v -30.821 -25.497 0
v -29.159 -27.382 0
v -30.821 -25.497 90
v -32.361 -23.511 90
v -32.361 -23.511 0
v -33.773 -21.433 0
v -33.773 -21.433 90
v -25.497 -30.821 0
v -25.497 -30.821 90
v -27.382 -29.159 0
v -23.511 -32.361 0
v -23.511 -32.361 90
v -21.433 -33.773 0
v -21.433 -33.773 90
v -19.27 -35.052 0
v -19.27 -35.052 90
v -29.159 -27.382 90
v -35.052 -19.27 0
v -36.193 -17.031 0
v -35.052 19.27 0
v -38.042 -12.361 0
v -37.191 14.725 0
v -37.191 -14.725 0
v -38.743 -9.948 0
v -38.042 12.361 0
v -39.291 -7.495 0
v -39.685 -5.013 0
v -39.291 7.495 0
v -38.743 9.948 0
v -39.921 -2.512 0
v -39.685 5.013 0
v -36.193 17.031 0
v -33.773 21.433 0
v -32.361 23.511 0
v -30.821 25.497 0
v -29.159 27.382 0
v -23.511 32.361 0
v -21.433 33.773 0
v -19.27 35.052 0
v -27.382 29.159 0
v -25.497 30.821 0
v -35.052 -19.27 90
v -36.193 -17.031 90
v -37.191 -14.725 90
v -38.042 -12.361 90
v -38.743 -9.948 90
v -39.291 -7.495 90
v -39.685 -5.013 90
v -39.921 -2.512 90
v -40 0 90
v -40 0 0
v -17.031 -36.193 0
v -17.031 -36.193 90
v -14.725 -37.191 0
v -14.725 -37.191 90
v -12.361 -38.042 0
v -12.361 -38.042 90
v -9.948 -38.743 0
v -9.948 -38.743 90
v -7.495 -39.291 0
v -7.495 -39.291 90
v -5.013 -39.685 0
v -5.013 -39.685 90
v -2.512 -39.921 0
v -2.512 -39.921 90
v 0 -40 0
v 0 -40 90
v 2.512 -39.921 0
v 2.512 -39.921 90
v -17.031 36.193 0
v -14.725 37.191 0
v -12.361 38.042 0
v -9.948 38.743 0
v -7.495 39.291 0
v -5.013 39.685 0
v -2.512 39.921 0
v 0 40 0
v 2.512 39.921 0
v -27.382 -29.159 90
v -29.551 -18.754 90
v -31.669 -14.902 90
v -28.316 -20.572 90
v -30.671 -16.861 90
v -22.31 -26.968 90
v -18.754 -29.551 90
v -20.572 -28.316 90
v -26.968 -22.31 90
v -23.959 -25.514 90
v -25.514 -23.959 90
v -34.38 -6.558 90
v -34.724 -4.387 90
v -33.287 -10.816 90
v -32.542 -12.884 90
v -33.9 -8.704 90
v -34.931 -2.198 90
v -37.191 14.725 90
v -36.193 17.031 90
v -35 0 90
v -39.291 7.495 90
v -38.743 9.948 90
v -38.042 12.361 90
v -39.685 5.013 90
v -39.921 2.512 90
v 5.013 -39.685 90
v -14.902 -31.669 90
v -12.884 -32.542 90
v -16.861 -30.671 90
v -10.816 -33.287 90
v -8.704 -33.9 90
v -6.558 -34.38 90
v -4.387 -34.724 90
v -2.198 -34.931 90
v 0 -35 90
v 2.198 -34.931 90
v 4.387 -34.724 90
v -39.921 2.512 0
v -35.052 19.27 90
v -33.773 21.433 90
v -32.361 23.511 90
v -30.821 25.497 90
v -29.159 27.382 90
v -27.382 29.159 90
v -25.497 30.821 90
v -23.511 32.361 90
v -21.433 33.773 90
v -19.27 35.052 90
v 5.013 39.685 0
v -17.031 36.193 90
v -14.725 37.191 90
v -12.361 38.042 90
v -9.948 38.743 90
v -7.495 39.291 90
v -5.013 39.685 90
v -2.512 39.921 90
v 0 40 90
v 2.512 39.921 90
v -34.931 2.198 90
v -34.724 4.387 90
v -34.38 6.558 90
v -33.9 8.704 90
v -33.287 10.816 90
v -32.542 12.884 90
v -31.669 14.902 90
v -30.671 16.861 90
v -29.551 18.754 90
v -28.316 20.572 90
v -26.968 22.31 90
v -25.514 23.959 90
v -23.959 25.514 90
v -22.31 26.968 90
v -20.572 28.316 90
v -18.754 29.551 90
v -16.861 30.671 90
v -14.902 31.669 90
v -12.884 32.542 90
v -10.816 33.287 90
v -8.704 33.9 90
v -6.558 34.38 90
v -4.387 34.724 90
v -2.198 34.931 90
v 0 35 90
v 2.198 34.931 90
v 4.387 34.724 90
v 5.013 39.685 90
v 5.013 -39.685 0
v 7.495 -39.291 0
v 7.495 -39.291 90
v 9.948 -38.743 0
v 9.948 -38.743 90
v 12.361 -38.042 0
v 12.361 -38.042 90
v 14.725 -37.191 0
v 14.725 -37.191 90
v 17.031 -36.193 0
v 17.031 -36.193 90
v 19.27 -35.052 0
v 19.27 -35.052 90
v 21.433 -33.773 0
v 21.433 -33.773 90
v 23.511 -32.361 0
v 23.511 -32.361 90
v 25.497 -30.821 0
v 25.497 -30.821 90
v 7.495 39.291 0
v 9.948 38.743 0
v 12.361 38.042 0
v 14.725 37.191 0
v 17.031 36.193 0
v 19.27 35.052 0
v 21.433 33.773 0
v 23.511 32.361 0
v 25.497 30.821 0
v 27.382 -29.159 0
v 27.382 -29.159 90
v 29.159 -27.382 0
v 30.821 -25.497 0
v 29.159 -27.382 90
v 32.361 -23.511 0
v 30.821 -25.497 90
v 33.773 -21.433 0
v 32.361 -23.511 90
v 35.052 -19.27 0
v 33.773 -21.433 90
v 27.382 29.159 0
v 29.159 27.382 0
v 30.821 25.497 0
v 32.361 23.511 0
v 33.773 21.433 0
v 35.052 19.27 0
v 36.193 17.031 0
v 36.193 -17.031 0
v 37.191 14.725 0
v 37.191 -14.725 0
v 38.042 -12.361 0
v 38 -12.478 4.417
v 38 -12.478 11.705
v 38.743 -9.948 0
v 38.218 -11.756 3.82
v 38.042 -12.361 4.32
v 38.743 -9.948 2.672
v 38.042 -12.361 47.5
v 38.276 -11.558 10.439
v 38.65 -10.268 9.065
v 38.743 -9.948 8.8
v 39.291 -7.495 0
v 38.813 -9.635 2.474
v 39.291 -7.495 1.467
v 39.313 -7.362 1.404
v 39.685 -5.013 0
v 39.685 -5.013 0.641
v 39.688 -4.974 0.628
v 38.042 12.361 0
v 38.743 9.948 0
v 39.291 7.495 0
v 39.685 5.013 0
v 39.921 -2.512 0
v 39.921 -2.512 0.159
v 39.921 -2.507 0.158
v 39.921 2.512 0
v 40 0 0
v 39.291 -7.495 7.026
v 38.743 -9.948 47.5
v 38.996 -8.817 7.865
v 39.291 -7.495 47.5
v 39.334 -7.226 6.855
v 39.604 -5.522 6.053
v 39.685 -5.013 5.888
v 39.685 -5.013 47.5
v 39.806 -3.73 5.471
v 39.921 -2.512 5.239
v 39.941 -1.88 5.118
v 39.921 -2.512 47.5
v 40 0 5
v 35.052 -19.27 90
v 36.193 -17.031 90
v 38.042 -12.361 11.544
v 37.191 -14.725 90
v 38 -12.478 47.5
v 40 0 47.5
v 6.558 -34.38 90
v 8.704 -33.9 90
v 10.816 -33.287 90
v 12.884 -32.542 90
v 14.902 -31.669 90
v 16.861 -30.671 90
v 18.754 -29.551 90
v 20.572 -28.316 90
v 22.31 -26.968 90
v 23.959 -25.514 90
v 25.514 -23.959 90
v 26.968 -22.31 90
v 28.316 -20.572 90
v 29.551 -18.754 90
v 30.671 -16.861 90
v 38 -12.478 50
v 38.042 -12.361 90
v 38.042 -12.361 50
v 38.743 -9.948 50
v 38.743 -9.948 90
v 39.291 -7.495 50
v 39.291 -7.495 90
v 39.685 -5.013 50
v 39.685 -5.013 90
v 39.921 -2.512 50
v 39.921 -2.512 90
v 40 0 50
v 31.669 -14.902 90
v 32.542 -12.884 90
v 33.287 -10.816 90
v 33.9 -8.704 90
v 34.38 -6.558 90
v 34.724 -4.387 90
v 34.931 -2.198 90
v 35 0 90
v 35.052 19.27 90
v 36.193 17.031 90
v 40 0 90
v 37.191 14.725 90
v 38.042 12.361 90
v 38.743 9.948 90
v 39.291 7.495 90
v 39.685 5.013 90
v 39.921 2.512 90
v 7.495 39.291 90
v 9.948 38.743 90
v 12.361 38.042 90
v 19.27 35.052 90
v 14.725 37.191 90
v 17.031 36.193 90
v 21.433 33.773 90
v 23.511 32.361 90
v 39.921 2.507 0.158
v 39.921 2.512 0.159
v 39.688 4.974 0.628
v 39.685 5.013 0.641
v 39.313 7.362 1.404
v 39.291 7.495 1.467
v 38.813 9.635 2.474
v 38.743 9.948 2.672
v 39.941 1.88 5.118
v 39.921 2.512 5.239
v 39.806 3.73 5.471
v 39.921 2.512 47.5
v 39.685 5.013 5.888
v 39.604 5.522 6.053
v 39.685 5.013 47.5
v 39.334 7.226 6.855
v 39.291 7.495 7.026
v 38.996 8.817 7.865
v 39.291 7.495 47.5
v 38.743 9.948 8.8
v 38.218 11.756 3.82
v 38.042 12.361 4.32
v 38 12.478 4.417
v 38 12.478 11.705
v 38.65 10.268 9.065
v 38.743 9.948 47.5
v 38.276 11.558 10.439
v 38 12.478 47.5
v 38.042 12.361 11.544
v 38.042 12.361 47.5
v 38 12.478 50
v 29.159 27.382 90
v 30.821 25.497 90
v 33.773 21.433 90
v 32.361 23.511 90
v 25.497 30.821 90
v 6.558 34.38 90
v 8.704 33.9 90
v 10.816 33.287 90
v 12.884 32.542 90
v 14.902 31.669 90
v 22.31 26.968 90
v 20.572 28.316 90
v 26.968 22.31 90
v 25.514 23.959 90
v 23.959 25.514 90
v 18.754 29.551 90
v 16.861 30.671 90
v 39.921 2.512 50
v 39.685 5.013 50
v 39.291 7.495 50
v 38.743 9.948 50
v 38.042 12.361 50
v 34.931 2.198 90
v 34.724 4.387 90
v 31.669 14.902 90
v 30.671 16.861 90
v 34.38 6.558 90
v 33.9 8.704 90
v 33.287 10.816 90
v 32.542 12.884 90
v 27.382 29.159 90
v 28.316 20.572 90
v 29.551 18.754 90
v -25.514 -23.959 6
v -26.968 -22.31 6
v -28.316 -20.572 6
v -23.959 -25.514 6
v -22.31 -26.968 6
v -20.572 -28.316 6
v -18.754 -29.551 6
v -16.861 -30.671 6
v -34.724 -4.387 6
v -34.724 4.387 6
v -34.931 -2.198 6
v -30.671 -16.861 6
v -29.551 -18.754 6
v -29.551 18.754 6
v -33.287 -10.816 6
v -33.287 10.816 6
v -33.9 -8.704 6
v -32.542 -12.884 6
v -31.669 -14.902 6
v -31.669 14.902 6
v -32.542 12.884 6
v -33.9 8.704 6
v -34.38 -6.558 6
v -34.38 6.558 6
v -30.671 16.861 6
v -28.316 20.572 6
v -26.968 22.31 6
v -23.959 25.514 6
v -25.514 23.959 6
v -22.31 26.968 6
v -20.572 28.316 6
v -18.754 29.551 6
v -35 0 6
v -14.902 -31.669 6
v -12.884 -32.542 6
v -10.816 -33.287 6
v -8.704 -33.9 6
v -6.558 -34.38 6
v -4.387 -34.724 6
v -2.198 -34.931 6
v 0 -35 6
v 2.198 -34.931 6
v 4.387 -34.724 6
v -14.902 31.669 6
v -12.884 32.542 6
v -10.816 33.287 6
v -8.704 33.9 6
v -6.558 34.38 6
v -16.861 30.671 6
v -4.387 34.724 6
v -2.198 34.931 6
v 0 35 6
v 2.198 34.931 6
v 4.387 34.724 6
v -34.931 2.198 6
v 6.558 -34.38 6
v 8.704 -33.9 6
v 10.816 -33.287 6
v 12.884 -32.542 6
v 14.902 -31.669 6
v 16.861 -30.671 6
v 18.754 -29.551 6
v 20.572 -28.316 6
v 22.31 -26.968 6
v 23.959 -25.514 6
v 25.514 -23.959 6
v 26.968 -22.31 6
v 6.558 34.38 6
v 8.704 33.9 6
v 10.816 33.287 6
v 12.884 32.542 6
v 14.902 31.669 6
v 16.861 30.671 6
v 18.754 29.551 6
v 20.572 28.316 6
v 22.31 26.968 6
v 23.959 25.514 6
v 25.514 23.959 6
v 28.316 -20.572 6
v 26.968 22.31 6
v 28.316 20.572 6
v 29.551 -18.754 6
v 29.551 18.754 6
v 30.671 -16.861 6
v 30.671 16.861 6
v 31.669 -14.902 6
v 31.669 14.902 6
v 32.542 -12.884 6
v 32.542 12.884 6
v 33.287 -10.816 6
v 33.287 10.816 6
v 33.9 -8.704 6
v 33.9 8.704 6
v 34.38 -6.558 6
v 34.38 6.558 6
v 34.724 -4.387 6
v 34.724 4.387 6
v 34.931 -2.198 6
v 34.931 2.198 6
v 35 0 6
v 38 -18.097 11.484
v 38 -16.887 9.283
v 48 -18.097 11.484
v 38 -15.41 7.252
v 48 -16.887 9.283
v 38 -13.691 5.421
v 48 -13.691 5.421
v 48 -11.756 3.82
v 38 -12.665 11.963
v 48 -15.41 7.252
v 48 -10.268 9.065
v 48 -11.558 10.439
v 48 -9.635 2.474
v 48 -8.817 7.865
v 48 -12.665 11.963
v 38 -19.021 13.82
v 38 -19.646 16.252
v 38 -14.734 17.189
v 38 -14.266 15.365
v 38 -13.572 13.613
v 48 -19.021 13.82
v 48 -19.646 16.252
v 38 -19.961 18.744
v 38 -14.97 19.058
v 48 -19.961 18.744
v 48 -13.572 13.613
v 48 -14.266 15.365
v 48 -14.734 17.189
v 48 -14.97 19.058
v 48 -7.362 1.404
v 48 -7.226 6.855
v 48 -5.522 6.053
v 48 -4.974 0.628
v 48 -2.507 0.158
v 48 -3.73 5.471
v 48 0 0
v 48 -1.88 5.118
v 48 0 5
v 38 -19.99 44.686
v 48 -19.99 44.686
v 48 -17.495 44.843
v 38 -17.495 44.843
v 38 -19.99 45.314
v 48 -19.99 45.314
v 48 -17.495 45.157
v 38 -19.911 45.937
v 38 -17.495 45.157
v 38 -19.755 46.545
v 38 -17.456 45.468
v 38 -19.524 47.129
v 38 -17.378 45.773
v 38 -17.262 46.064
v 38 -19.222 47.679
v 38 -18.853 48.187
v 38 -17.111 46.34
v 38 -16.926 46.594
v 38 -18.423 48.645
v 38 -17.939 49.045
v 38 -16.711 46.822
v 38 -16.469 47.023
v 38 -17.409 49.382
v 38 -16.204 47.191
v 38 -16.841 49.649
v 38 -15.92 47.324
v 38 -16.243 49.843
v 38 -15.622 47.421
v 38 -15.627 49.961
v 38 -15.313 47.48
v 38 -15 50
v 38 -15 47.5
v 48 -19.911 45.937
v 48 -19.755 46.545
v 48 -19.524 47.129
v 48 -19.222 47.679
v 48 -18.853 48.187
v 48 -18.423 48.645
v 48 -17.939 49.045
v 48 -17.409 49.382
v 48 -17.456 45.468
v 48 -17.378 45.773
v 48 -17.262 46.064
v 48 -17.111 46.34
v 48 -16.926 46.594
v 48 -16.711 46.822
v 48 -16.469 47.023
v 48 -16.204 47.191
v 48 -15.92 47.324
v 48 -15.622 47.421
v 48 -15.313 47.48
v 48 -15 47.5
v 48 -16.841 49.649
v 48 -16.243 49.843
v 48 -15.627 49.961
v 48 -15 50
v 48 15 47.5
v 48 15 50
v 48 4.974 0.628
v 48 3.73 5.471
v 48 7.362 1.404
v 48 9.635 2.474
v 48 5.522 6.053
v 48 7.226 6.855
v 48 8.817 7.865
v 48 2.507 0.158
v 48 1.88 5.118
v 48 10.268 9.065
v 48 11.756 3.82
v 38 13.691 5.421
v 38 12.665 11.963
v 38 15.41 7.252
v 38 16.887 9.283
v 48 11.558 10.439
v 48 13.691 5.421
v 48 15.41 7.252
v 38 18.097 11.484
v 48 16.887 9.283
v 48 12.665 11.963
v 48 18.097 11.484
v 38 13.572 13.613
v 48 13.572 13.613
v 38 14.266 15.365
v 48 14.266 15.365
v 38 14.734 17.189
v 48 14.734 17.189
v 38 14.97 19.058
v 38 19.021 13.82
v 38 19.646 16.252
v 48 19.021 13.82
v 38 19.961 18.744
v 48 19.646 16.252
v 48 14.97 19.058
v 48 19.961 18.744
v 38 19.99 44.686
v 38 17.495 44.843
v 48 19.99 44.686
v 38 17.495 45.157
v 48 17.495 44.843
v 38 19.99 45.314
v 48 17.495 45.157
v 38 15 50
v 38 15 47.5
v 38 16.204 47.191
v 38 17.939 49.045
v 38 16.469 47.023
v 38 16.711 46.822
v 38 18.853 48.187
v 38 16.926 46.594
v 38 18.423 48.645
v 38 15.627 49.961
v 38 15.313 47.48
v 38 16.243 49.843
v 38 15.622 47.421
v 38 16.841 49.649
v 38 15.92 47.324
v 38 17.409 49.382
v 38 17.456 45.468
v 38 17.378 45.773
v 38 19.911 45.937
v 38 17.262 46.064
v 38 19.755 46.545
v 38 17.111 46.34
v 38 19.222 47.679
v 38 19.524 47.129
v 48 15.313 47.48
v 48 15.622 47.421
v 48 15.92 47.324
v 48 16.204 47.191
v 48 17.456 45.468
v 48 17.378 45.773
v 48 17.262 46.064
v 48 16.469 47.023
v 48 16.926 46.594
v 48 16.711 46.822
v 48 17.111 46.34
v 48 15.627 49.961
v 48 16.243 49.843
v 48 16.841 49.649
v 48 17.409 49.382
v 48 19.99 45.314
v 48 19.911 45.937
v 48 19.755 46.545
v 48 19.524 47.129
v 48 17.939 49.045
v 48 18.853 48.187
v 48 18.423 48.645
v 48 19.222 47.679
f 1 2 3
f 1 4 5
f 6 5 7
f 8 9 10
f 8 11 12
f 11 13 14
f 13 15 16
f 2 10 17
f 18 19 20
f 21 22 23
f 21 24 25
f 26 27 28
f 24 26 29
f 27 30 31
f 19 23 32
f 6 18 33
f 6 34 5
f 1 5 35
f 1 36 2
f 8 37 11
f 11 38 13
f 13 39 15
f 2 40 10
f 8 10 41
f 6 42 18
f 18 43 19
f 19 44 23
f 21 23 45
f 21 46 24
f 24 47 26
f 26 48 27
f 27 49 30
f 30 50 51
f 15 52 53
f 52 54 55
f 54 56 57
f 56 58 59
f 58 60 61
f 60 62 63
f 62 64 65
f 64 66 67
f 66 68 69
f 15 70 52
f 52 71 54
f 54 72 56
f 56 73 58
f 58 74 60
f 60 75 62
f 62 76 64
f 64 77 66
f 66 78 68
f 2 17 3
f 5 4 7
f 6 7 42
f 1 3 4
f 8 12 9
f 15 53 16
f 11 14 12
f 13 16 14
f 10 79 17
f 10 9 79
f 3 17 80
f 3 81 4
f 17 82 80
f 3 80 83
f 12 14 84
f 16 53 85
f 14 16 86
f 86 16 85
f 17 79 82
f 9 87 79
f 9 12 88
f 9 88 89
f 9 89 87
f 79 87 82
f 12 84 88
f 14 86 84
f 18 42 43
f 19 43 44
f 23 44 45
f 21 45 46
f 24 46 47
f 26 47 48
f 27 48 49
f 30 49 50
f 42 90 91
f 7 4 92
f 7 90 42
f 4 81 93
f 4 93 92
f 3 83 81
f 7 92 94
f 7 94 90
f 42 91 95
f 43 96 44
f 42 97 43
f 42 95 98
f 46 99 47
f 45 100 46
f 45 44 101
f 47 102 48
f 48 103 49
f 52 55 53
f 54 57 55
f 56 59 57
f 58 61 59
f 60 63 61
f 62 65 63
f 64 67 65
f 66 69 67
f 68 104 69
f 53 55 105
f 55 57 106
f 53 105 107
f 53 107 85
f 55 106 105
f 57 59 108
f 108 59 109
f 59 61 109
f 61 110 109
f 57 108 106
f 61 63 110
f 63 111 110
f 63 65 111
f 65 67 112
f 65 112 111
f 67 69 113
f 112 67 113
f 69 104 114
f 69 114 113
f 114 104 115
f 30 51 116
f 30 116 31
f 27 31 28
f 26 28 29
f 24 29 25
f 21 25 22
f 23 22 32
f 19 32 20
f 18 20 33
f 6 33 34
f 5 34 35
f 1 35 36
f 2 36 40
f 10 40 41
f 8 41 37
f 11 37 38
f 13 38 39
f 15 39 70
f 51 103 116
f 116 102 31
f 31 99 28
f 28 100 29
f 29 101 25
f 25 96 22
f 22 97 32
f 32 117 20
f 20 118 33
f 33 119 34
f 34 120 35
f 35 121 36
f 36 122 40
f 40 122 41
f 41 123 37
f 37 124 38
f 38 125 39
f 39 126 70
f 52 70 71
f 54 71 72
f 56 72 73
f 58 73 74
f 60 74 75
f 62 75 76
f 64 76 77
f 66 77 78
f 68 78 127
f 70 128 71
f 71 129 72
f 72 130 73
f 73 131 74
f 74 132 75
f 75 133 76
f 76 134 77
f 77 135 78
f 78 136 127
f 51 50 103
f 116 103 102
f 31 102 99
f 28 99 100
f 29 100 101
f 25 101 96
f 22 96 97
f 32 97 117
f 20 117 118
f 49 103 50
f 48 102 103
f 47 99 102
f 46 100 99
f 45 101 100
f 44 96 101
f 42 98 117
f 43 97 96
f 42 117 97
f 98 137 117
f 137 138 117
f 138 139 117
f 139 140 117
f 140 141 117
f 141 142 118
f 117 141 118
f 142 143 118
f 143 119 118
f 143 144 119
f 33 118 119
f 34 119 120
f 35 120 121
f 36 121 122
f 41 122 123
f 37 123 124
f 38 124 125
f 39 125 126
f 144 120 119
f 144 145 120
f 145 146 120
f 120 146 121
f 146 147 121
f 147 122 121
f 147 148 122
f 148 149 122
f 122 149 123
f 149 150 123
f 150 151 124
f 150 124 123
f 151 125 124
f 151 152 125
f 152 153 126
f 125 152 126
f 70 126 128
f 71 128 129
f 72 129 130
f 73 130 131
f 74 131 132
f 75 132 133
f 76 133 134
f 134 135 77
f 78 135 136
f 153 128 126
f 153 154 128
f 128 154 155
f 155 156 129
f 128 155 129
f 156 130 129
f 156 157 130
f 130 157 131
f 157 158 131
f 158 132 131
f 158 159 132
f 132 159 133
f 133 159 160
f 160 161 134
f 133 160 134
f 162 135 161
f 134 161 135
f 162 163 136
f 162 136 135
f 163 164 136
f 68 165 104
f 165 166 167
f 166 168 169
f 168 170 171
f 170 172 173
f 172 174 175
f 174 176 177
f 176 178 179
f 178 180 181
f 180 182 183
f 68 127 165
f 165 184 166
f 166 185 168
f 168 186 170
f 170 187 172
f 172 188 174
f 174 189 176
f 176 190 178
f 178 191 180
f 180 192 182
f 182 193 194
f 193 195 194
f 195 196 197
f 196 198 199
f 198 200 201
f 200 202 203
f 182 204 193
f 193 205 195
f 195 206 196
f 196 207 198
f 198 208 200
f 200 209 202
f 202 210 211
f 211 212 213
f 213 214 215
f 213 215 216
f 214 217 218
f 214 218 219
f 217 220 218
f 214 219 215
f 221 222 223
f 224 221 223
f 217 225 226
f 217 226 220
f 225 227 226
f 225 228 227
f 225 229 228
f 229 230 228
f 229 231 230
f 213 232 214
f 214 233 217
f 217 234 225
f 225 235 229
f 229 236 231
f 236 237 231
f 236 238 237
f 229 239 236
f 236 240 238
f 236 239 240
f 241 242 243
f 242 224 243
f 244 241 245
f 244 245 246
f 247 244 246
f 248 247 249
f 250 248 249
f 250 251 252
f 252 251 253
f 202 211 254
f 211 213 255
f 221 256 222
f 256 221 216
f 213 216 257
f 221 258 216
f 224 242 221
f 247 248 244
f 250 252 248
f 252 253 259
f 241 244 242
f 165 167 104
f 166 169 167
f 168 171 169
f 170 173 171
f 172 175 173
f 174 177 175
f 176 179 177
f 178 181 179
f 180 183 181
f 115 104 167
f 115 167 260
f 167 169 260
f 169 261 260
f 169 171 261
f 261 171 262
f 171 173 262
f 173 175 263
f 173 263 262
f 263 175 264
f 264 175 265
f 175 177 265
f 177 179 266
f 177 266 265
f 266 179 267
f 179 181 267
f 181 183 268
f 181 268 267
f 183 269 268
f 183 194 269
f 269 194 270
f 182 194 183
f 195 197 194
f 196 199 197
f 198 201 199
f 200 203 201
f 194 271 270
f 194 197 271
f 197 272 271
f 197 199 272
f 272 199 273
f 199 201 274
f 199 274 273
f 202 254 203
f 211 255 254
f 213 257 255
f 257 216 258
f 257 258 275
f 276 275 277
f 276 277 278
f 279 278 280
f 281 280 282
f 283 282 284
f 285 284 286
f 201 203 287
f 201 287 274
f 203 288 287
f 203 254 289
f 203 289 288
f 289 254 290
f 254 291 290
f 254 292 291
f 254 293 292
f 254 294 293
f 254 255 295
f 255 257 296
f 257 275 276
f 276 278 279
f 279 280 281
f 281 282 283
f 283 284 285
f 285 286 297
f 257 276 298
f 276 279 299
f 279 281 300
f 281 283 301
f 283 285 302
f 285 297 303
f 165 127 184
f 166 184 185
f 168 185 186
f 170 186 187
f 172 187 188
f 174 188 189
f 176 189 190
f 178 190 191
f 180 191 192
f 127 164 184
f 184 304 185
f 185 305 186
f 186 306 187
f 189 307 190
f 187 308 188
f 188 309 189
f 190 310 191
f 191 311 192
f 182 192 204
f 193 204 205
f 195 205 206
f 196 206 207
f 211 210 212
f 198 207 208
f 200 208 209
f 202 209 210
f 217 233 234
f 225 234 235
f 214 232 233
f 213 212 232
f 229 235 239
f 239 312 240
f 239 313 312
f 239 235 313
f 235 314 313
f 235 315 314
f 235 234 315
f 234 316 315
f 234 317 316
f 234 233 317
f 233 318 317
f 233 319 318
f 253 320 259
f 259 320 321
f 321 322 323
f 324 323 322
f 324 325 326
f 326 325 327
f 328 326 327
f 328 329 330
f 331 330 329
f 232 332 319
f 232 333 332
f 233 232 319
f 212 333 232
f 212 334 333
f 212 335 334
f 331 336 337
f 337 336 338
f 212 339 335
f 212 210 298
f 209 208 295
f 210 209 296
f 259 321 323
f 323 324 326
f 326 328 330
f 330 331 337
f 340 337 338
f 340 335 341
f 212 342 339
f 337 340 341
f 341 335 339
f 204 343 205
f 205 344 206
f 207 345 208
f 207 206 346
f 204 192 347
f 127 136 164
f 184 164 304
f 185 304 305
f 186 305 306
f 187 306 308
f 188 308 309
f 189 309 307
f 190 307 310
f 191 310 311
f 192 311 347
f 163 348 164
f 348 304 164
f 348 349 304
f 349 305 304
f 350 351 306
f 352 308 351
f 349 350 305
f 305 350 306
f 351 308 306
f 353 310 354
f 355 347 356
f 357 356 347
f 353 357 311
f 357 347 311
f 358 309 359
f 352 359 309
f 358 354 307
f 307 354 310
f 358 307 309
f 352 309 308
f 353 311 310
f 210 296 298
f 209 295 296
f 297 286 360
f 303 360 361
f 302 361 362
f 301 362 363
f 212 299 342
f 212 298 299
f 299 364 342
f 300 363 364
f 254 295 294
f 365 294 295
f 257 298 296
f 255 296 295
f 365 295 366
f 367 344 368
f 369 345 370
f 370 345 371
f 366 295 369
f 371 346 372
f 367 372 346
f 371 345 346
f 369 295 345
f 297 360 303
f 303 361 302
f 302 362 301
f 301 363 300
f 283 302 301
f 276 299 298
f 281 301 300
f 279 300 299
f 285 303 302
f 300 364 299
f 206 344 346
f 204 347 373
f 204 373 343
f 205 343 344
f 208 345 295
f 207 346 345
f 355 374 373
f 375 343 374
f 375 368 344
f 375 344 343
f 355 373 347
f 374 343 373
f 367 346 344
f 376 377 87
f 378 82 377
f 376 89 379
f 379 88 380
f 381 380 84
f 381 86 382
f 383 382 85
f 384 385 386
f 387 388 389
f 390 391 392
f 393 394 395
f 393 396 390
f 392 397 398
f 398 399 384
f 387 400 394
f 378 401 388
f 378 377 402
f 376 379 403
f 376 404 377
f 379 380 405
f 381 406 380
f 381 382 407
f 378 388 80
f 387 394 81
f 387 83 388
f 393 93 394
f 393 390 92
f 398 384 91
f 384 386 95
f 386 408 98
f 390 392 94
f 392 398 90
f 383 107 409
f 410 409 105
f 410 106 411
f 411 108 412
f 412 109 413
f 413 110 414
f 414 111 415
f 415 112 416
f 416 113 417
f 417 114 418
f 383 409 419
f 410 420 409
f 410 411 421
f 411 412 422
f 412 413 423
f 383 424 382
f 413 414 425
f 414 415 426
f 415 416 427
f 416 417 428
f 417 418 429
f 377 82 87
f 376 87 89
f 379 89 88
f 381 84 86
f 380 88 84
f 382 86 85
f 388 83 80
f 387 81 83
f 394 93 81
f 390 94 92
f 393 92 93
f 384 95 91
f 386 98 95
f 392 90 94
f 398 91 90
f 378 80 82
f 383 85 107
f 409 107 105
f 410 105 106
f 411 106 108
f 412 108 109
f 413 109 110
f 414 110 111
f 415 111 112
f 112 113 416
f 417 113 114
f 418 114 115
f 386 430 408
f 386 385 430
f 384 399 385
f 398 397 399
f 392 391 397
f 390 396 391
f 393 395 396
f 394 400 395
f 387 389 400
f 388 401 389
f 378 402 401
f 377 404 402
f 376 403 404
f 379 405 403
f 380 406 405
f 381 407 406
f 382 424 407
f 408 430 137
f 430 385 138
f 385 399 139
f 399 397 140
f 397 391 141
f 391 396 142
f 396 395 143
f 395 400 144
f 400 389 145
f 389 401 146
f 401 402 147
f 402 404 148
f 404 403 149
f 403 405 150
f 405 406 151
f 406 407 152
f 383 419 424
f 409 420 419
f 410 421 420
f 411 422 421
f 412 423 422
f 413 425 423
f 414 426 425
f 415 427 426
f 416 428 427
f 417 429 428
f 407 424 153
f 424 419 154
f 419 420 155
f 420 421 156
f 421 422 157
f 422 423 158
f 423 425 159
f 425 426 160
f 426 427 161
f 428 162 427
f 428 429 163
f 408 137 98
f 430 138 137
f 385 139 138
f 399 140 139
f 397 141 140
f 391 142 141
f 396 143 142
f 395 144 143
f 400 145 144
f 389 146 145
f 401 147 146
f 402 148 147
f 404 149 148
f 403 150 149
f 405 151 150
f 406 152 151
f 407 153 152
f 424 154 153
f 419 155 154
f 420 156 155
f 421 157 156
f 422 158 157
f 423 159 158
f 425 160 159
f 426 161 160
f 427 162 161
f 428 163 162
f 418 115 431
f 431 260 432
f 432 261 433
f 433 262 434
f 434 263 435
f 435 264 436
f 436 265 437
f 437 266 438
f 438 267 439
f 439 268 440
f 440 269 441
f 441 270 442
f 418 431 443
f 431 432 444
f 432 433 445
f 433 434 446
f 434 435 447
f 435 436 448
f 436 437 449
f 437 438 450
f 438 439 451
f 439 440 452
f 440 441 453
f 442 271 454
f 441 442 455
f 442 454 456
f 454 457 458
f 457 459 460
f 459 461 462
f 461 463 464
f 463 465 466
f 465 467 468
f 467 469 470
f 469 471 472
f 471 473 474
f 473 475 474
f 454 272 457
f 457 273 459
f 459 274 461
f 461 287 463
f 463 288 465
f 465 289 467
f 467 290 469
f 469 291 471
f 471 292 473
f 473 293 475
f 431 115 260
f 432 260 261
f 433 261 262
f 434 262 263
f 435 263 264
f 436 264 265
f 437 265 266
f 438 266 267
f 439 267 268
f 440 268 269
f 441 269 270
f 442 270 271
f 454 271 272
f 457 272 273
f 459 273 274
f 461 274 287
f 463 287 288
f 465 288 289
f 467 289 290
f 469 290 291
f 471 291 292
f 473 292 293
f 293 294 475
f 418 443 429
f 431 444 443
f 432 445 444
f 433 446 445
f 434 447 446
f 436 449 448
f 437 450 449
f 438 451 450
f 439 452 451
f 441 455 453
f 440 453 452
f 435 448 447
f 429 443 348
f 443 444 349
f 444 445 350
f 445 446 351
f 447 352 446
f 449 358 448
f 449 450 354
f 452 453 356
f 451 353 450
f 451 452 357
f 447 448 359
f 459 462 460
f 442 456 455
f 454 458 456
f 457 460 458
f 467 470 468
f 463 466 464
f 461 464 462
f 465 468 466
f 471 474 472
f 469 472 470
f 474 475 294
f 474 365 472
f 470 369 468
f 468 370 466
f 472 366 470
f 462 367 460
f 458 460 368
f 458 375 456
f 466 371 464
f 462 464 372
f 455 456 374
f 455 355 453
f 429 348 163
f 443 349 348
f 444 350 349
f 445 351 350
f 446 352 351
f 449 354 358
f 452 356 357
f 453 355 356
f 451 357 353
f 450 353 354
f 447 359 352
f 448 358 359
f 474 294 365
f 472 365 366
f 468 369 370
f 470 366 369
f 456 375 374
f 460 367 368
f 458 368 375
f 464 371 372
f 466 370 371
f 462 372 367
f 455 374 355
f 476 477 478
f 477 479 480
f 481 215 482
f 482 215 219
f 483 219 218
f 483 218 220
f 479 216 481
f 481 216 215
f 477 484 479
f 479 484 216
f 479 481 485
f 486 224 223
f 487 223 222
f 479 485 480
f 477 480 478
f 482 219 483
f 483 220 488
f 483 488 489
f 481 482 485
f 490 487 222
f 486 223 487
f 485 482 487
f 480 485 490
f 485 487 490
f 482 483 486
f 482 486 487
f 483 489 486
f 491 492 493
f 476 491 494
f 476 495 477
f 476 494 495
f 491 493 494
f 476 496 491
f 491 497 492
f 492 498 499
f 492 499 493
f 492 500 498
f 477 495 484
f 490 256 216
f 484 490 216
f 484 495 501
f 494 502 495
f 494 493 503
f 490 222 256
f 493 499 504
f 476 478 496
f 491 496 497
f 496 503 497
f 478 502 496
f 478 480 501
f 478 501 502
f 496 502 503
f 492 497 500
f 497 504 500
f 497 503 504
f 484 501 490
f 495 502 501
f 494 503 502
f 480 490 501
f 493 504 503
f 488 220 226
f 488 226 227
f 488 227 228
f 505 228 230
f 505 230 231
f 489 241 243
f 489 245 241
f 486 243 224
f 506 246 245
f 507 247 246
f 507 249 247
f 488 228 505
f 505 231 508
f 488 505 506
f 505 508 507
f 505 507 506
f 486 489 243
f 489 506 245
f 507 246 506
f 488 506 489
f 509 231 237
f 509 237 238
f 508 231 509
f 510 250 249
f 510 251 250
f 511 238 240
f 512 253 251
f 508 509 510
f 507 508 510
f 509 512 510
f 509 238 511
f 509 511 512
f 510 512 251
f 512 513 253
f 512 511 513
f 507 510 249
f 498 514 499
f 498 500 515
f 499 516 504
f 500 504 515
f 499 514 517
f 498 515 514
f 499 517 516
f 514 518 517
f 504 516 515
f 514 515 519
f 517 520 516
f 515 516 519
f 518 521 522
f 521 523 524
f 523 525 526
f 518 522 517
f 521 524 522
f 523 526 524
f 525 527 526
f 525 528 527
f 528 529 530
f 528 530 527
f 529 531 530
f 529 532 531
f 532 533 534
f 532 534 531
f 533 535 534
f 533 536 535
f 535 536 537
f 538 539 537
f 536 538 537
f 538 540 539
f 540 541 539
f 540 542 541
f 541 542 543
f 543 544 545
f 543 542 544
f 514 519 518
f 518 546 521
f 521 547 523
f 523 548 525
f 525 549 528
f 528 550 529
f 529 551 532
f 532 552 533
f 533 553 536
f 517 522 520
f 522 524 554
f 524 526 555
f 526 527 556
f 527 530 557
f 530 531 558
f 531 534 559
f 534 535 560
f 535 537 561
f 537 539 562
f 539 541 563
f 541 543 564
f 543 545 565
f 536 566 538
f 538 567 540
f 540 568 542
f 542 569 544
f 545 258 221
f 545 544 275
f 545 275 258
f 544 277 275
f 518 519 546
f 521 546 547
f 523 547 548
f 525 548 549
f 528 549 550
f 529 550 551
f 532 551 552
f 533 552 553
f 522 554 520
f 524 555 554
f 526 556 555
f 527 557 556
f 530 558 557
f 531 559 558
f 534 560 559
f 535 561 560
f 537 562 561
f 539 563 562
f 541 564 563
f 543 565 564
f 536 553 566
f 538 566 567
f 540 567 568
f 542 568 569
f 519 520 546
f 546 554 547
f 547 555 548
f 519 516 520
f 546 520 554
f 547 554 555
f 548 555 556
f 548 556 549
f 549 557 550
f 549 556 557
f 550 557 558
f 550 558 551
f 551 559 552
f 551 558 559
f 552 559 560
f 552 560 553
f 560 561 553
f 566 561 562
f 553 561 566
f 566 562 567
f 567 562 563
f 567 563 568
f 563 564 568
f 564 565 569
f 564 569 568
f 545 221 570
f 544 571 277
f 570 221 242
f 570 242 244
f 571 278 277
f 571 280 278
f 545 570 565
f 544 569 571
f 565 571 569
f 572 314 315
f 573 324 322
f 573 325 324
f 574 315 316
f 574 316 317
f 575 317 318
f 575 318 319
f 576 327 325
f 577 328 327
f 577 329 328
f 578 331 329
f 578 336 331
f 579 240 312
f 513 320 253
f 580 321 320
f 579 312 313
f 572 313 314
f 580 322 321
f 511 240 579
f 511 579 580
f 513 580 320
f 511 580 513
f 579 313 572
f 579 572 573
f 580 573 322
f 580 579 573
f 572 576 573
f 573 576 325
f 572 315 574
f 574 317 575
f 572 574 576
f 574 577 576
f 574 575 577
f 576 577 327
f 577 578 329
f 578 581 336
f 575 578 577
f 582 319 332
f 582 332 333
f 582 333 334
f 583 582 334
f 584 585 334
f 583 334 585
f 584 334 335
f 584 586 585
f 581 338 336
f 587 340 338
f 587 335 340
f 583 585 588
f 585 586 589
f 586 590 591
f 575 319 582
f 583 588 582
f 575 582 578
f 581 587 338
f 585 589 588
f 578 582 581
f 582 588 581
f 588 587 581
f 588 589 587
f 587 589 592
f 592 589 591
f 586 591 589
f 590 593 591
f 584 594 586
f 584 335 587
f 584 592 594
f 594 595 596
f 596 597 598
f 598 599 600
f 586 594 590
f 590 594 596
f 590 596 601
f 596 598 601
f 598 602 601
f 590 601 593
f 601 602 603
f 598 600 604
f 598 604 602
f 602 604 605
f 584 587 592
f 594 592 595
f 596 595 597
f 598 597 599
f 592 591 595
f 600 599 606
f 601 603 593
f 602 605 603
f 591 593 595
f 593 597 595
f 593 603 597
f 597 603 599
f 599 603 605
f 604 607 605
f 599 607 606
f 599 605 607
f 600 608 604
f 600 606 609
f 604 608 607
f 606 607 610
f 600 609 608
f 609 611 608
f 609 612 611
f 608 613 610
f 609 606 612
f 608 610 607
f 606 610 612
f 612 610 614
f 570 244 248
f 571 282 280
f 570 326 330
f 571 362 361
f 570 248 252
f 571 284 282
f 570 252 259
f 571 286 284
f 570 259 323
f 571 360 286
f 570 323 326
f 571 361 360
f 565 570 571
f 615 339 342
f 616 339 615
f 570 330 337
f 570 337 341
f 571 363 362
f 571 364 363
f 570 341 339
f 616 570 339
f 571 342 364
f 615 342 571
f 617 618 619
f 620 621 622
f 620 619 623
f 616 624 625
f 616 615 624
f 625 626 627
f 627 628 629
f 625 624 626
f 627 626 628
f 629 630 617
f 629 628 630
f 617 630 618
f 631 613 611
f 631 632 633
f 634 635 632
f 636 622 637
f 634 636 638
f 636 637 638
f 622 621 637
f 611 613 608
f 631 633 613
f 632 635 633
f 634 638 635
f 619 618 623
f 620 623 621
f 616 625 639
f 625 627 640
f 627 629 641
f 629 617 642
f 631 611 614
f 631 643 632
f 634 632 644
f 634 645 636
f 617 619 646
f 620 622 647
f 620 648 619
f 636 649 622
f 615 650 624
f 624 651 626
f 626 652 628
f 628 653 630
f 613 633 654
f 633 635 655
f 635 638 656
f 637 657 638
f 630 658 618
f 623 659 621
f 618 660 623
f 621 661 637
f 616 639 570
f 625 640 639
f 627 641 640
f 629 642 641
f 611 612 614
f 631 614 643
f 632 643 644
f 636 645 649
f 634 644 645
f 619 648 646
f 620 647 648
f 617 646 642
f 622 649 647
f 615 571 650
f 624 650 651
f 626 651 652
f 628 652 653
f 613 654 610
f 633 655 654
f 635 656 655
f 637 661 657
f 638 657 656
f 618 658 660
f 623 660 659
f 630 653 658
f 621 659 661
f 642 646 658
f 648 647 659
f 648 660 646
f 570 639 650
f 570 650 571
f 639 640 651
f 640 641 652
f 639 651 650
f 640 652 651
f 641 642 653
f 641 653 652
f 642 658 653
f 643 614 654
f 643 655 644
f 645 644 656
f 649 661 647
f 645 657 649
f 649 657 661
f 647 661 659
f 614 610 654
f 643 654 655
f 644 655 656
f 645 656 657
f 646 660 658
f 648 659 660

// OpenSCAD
// マグカップのパラメータ
outer_d = 80;
inner_d = 70;
height = 90;
bottom_thickness = 6;

// 取手のパラメータ
handle_inner_h = 30;
handle_inner_w = 25;
handle_thickness = 10; // 取手の断面の厚み

module mug() {
    union() {
        // マグ本体
        difference() {
            cylinder(d = outer_d, h = height, $fn = 100);
            translate([0, 0, bottom_thickness])
                cylinder(d = inner_d, h = height - bottom_thickness + 0.1, $fn = 100);
        }

        // 取手 (D字形状: 外側が半円、本体側が直線)
        // 本体外周(半径40mm)に接するように配置
        handle_x_pos = outer_d / 2 - 2; 
        
        translate([handle_x_pos, 0, height / 2]) {
            rotate([0, 90, 0]) {
                linear_extrude(height = handle_thickness) {
                    difference() {
                        // 取手の外形
                        hull() {
                            translate([0, handle_inner_h / 2, 0]) circle(d = handle_thickness, $fn = 50);
                            translate([0, -handle_inner_h / 2, 0]) circle(d = handle_thickness, $fn = 50);
                            translate([handle_inner_w, 0, 0]) circle(d = handle_inner_h + handle_thickness, $fn = 50);
                        }
                        // 取手の内側の穴
                        hull() {
                            translate([0, handle_inner_h / 2, 0]) circle(d = handle_thickness / 2, $fn = 50);
                            translate([0, -handle_inner_h / 2, 0]) circle(d = handle_thickness / 2, $fn = 50);
                            translate([handle_inner_w, 0, 0]) circle(d = handle_inner_h, $fn = 50);
                        }
                    }
                }
            }
        }
    }
}

mug();
